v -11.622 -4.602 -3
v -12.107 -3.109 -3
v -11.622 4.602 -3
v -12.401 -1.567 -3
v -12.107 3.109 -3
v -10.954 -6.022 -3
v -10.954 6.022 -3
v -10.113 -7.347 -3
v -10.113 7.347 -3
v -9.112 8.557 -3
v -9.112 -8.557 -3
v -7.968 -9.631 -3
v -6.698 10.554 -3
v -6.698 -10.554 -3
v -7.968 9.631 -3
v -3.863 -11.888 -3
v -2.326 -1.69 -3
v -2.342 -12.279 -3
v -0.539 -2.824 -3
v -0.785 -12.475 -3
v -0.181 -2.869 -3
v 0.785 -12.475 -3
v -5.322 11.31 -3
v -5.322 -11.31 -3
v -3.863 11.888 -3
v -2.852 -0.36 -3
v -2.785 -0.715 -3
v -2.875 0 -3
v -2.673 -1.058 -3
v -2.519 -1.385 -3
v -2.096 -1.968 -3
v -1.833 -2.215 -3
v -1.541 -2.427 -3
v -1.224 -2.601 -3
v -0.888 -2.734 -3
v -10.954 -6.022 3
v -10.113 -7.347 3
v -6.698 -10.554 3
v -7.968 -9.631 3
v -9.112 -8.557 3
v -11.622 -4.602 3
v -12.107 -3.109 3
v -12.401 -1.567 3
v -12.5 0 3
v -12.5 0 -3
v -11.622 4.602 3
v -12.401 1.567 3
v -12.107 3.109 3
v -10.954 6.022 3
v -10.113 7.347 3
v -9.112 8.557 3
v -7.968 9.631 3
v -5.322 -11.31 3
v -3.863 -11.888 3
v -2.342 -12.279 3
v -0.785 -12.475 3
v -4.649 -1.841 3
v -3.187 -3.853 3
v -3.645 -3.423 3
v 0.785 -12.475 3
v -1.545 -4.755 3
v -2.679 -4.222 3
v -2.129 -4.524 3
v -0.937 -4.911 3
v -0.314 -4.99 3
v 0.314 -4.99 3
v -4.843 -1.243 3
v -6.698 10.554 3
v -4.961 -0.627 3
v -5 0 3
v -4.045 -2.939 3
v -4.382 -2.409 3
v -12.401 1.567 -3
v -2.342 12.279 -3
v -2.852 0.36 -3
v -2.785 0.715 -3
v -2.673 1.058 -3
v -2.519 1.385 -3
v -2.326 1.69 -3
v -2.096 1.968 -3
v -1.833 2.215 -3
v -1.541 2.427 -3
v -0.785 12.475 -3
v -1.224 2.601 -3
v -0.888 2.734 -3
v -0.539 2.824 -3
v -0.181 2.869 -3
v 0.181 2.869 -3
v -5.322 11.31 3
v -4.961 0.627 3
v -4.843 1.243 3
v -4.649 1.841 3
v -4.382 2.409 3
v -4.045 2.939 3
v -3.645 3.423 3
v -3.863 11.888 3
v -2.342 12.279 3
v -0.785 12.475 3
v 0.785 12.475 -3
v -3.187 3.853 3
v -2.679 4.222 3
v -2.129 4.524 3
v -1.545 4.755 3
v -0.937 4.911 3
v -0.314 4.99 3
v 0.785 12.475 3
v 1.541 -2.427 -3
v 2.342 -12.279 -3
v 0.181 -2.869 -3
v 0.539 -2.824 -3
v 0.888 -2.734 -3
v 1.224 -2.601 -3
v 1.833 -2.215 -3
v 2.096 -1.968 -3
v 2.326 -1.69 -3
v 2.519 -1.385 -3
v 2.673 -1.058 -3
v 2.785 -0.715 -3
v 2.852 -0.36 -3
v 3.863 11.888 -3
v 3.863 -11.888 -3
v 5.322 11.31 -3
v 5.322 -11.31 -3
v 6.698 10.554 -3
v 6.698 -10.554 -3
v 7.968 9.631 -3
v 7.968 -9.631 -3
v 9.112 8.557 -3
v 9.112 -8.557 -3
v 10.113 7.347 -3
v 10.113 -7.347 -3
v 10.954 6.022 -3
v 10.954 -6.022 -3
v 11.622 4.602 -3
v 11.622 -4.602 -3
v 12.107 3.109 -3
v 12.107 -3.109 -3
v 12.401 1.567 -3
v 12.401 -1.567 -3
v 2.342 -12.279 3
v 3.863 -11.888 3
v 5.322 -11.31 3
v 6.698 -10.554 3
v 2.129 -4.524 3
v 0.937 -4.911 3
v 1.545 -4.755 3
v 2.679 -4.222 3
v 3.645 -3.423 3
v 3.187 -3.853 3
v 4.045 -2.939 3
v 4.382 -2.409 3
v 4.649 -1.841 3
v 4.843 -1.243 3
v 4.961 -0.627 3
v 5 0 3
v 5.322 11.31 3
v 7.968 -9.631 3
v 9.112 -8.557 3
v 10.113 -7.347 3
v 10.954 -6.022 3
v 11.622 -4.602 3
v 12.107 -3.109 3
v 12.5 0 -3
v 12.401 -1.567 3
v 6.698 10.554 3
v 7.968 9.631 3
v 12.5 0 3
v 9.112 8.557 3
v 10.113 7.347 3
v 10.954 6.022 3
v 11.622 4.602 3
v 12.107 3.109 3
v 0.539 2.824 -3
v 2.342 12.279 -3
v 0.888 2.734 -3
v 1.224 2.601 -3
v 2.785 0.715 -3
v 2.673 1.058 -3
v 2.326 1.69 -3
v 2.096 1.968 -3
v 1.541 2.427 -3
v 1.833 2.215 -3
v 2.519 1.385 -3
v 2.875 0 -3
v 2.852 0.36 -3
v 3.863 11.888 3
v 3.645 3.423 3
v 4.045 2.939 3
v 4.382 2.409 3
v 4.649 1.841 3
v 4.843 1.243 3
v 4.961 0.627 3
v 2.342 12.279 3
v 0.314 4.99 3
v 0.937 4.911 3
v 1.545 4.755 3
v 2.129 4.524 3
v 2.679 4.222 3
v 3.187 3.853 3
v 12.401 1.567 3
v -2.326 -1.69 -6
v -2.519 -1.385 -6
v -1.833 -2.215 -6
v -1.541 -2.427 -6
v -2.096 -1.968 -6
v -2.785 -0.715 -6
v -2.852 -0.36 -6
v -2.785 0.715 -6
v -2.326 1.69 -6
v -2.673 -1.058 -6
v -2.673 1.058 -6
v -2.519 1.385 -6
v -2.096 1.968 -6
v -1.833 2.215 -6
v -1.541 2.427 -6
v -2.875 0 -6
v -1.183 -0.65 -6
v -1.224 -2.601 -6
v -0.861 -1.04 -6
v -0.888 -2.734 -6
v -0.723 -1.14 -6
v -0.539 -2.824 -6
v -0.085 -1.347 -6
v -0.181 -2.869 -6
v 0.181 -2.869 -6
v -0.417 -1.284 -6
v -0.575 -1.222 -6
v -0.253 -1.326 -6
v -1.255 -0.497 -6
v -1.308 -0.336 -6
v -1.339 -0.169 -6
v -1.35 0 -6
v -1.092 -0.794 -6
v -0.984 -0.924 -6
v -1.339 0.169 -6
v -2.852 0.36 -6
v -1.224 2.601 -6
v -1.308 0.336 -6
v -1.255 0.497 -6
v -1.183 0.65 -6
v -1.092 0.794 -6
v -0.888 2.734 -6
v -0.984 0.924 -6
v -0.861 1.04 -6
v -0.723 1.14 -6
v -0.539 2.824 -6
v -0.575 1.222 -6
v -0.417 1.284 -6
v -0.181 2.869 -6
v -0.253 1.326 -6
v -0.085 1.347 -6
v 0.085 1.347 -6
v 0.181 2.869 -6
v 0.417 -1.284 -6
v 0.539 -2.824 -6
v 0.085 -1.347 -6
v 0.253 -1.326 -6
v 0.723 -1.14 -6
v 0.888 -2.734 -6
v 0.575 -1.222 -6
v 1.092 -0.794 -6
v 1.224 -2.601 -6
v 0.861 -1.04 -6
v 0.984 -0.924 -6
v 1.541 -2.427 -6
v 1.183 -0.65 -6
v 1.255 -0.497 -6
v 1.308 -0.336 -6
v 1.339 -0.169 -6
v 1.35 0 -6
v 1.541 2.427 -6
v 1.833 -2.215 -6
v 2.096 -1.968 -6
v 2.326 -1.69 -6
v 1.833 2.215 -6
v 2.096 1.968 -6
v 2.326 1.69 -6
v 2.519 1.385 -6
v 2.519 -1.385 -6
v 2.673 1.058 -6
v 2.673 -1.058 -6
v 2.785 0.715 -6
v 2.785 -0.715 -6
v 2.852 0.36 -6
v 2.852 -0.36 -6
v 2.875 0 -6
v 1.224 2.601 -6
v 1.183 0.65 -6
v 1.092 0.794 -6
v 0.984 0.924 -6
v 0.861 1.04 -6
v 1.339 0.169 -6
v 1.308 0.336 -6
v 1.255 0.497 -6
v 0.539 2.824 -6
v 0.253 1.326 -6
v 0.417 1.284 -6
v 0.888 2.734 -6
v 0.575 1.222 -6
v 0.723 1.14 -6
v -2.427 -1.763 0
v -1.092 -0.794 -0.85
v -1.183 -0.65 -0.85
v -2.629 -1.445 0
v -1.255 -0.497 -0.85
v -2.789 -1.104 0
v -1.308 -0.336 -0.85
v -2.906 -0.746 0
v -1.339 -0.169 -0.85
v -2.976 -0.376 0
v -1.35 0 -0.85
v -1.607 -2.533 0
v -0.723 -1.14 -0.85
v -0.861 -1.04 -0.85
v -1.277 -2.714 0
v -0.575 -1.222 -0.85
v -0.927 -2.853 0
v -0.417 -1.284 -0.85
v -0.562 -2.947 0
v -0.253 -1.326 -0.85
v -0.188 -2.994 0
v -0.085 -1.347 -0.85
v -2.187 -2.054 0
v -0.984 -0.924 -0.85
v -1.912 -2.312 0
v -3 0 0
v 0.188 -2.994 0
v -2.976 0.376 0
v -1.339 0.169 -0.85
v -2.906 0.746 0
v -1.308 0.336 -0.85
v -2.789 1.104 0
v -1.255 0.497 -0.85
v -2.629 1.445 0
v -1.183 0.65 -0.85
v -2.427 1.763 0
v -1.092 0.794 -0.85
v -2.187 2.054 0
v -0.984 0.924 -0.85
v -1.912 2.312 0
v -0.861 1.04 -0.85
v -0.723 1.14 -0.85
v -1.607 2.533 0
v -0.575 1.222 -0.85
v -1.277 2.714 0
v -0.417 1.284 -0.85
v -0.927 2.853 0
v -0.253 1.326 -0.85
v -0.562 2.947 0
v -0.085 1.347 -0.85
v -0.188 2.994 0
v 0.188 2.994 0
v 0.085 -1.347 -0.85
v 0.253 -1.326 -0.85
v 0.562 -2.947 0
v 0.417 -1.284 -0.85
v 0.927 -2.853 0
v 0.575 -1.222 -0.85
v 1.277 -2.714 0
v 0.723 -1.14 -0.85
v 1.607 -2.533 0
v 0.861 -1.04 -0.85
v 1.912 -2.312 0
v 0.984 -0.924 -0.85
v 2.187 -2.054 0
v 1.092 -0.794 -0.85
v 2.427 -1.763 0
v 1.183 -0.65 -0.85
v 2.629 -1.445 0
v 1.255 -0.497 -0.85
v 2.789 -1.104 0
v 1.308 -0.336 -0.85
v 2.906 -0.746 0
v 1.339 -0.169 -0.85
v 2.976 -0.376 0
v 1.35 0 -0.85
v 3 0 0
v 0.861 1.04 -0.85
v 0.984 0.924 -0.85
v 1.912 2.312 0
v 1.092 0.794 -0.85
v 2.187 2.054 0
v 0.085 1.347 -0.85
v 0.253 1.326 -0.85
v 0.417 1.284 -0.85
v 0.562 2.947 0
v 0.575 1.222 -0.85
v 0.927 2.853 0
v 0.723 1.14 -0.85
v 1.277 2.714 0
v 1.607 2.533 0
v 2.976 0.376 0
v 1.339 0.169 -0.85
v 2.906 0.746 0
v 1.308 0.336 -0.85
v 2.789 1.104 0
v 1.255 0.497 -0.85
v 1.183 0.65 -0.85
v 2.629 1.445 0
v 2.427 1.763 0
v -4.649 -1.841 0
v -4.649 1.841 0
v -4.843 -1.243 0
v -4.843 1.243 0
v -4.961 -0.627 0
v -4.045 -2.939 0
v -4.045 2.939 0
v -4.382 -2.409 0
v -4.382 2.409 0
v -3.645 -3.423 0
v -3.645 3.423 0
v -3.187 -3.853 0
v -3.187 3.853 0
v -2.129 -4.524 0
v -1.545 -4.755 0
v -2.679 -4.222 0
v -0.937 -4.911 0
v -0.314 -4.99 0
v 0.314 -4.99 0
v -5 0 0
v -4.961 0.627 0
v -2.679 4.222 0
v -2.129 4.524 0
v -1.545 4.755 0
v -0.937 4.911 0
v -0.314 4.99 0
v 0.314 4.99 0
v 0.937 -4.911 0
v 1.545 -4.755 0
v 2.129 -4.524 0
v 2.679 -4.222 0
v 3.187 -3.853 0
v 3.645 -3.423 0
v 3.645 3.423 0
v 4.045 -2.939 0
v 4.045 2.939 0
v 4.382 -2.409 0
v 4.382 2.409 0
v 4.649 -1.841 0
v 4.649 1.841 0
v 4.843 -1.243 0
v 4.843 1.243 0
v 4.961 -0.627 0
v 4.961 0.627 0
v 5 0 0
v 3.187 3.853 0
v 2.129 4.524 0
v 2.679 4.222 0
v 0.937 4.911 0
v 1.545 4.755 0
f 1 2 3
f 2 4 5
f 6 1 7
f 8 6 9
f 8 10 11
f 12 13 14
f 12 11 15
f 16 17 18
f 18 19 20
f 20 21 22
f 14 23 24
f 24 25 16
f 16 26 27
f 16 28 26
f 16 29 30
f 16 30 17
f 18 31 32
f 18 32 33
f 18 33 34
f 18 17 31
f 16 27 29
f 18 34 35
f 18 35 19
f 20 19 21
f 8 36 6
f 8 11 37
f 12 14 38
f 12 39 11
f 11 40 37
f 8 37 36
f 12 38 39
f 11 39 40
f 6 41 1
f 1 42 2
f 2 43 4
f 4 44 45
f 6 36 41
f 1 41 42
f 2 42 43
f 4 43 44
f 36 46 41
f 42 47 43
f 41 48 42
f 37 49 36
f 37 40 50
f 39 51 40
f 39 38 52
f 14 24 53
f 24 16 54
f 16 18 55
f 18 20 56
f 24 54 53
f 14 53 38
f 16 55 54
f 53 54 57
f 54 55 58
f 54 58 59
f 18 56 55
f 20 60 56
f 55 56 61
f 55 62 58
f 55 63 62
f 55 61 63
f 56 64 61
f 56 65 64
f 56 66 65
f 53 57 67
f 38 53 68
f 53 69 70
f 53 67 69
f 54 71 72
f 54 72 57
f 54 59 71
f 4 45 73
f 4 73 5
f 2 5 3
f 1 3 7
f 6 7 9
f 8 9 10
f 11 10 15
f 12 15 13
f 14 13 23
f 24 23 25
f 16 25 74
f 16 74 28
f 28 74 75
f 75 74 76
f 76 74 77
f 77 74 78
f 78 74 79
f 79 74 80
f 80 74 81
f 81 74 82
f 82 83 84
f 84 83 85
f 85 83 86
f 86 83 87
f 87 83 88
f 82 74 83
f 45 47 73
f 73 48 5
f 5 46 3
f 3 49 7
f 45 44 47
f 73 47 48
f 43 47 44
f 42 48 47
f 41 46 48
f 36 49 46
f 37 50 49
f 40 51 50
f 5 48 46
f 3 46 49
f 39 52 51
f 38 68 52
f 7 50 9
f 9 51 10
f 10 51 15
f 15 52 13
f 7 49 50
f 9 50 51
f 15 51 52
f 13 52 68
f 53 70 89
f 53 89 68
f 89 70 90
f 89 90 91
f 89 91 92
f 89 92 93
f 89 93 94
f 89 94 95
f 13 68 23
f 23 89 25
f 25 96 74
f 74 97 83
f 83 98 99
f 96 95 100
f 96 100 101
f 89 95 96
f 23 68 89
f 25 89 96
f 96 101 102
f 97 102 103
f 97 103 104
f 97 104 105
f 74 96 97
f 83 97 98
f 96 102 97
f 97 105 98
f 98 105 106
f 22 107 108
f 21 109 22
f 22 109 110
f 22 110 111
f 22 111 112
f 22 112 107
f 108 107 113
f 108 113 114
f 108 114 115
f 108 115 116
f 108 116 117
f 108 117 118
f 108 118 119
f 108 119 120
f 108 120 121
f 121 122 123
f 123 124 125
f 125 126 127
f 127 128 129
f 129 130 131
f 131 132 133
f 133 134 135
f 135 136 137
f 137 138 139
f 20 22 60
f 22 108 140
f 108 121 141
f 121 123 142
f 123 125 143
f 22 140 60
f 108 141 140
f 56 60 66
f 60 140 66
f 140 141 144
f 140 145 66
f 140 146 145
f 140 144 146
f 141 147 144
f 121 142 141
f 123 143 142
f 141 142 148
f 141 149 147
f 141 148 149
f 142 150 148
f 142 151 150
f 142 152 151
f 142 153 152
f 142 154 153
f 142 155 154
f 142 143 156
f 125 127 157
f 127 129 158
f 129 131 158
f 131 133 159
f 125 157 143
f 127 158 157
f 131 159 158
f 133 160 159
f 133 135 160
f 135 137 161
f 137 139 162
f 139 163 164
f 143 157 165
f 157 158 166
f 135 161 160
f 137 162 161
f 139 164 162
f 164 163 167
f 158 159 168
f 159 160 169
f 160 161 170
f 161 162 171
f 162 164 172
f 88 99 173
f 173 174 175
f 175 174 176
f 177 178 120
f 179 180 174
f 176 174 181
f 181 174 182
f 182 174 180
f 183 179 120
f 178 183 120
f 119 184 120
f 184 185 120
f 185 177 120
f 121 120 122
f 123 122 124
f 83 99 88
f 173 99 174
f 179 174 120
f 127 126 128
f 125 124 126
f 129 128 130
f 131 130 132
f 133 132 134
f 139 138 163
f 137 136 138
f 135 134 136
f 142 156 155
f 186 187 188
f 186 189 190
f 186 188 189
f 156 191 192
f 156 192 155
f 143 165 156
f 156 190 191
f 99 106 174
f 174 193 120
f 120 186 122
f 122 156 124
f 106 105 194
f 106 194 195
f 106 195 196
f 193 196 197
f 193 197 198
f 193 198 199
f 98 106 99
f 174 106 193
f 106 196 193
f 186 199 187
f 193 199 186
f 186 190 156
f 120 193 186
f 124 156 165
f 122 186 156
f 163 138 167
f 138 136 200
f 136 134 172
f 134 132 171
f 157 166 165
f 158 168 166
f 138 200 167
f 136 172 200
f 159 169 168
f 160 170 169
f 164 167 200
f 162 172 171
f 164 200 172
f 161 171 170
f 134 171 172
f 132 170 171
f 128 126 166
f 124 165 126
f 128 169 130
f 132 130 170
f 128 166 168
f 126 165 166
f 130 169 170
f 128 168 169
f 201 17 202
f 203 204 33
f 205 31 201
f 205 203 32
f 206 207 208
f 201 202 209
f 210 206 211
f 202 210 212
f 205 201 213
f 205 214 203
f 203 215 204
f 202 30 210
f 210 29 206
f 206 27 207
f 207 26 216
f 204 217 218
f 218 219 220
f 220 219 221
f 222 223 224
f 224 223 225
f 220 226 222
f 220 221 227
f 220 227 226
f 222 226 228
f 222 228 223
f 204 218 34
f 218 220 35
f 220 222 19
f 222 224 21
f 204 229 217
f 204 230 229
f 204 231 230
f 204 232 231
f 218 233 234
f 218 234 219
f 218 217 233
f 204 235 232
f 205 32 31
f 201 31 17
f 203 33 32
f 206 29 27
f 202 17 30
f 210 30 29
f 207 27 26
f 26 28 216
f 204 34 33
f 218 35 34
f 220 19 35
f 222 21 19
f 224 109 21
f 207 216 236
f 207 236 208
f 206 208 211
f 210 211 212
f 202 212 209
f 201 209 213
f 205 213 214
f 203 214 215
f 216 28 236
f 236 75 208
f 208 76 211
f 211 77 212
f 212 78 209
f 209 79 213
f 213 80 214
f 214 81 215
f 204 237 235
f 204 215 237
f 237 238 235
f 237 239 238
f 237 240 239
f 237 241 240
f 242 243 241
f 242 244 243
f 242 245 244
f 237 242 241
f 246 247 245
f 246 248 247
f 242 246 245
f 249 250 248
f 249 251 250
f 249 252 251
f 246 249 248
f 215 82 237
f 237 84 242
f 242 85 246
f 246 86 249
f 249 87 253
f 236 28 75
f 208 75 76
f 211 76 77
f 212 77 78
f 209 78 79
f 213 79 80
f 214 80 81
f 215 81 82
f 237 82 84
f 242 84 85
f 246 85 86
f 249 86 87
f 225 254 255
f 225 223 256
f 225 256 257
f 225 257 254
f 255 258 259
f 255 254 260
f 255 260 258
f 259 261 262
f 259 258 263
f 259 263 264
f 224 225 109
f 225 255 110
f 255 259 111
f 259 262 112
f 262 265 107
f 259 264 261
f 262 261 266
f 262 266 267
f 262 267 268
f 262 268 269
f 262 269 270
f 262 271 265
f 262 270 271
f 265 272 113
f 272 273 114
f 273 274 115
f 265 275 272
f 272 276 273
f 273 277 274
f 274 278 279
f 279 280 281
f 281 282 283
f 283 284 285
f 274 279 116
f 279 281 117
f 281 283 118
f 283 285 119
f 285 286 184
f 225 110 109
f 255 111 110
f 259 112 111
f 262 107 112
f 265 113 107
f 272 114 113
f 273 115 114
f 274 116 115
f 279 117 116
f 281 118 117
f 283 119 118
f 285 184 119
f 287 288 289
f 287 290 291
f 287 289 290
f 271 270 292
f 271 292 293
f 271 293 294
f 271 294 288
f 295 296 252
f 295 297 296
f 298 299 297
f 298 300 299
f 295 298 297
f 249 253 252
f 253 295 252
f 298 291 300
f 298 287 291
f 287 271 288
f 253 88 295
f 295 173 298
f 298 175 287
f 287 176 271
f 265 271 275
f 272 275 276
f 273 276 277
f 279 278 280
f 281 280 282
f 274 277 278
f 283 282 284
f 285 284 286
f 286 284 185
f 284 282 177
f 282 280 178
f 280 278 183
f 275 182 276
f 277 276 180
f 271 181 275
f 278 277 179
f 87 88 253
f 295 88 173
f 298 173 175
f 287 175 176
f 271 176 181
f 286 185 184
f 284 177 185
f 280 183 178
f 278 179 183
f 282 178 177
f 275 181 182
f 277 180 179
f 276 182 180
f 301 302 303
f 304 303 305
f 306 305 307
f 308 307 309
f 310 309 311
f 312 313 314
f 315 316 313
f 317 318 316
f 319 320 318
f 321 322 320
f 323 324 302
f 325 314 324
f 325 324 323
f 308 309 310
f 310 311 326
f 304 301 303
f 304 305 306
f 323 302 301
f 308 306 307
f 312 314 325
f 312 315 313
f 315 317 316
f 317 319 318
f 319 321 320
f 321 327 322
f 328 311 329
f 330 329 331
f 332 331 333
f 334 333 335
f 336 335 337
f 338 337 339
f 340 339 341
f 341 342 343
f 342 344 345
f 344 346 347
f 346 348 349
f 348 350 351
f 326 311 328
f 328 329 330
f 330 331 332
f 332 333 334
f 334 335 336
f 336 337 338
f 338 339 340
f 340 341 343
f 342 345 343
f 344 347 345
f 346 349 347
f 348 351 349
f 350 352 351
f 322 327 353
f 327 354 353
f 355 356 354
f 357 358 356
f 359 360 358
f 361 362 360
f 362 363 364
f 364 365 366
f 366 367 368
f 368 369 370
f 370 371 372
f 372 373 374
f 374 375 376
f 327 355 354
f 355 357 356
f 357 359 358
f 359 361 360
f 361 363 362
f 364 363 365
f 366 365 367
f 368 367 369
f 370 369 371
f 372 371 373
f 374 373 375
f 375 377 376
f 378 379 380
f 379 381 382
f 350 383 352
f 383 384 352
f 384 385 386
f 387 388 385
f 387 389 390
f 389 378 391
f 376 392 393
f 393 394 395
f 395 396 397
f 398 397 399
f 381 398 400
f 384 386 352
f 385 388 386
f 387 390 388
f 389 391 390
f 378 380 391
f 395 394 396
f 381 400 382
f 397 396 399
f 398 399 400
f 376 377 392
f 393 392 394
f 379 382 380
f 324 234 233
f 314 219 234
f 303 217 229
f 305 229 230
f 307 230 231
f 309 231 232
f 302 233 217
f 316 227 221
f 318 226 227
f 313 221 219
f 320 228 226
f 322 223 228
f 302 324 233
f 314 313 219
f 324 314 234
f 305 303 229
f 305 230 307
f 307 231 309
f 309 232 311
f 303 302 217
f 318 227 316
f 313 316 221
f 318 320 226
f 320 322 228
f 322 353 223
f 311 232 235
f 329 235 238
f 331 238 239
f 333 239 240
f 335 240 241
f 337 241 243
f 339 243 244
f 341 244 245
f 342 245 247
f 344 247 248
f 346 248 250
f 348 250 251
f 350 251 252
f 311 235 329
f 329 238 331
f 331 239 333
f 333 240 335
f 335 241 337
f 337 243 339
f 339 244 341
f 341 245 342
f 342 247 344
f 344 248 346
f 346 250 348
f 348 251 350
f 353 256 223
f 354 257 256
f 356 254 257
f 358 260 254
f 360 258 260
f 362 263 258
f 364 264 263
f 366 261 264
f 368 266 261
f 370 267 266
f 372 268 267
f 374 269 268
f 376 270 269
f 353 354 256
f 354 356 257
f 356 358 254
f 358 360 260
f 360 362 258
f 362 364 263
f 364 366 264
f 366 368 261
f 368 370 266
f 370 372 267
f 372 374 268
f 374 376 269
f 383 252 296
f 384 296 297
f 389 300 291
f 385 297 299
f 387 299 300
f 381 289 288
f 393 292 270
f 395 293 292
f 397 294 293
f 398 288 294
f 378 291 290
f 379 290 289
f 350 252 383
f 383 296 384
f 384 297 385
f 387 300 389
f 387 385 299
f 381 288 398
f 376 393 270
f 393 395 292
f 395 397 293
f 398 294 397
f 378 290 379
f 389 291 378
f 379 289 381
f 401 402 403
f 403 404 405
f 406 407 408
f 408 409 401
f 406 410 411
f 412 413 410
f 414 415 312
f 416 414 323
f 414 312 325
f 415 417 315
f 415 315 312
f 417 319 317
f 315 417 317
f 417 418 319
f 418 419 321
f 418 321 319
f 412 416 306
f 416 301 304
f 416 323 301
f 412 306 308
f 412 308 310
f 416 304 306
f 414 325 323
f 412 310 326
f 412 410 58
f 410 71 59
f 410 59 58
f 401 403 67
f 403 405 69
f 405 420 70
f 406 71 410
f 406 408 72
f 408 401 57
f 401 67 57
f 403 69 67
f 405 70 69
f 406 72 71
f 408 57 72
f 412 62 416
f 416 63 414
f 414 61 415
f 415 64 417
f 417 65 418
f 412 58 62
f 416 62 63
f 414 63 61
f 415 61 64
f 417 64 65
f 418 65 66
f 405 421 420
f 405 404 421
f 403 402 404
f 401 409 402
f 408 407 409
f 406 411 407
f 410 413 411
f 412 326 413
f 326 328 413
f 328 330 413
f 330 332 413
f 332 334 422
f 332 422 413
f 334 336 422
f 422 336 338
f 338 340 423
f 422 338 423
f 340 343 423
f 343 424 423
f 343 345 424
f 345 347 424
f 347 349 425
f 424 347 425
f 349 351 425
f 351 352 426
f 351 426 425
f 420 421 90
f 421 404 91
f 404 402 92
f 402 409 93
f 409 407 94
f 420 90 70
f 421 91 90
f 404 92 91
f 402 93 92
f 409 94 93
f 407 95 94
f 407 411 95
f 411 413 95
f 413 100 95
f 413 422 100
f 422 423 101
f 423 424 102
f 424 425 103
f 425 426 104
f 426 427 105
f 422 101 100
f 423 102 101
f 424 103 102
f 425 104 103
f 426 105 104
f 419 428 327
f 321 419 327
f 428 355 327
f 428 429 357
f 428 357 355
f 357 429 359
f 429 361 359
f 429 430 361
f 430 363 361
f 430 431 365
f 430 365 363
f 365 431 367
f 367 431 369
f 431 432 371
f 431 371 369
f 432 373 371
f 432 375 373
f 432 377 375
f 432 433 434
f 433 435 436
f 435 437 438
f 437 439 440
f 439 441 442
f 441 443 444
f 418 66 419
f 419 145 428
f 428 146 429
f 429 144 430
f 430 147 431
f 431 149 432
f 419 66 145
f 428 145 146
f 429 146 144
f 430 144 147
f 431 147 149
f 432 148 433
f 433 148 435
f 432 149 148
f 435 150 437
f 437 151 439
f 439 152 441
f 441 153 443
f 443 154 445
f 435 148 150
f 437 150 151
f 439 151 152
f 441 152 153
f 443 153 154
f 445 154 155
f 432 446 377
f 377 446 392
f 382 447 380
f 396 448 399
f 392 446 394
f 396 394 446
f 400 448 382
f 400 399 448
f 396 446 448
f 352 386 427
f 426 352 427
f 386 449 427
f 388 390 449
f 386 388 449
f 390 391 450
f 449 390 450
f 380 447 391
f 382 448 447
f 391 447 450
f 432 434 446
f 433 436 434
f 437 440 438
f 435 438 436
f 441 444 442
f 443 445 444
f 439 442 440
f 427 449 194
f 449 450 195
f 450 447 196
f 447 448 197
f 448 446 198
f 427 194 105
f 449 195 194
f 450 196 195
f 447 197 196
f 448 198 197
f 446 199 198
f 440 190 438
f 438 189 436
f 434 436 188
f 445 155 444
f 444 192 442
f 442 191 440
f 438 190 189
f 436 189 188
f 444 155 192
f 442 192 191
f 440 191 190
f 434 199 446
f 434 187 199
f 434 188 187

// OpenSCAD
$fn = 50;

difference() {
	union() {
		translate(v = [0, 0, -3.0]) {
			cylinder(h = 6, r = 12.5);
		}
		#translate(v = [0, 0, -6.0]) {
			cylinder(h = 6, r = 2.875);
		}
	}
	union() {
		translate(v = [0, 0, 0]) {
			rotate(a = [0, 0, 0]) {
				difference() {
					union() {
						translate(v = [0, 0, -6.0]) {
							cylinder(h = 6, r = 1.0);
						}
						translate(v = [0, 0, -0.85]) {
							cylinder(h = 0.85, r1 = 1.35, r2 = 3.0);
						}
						translate(v = [0, 0, -6.0]) {
							cylinder(h = 6, r = 1.35);
						}
						translate(v = [0, 0, -6.0]) {
							cylinder(h = 6, r = 1.0);
						}
					}
					union();
				}
			}
		}
		#cylinder(h = 3, r = 5.0);
	}
}
